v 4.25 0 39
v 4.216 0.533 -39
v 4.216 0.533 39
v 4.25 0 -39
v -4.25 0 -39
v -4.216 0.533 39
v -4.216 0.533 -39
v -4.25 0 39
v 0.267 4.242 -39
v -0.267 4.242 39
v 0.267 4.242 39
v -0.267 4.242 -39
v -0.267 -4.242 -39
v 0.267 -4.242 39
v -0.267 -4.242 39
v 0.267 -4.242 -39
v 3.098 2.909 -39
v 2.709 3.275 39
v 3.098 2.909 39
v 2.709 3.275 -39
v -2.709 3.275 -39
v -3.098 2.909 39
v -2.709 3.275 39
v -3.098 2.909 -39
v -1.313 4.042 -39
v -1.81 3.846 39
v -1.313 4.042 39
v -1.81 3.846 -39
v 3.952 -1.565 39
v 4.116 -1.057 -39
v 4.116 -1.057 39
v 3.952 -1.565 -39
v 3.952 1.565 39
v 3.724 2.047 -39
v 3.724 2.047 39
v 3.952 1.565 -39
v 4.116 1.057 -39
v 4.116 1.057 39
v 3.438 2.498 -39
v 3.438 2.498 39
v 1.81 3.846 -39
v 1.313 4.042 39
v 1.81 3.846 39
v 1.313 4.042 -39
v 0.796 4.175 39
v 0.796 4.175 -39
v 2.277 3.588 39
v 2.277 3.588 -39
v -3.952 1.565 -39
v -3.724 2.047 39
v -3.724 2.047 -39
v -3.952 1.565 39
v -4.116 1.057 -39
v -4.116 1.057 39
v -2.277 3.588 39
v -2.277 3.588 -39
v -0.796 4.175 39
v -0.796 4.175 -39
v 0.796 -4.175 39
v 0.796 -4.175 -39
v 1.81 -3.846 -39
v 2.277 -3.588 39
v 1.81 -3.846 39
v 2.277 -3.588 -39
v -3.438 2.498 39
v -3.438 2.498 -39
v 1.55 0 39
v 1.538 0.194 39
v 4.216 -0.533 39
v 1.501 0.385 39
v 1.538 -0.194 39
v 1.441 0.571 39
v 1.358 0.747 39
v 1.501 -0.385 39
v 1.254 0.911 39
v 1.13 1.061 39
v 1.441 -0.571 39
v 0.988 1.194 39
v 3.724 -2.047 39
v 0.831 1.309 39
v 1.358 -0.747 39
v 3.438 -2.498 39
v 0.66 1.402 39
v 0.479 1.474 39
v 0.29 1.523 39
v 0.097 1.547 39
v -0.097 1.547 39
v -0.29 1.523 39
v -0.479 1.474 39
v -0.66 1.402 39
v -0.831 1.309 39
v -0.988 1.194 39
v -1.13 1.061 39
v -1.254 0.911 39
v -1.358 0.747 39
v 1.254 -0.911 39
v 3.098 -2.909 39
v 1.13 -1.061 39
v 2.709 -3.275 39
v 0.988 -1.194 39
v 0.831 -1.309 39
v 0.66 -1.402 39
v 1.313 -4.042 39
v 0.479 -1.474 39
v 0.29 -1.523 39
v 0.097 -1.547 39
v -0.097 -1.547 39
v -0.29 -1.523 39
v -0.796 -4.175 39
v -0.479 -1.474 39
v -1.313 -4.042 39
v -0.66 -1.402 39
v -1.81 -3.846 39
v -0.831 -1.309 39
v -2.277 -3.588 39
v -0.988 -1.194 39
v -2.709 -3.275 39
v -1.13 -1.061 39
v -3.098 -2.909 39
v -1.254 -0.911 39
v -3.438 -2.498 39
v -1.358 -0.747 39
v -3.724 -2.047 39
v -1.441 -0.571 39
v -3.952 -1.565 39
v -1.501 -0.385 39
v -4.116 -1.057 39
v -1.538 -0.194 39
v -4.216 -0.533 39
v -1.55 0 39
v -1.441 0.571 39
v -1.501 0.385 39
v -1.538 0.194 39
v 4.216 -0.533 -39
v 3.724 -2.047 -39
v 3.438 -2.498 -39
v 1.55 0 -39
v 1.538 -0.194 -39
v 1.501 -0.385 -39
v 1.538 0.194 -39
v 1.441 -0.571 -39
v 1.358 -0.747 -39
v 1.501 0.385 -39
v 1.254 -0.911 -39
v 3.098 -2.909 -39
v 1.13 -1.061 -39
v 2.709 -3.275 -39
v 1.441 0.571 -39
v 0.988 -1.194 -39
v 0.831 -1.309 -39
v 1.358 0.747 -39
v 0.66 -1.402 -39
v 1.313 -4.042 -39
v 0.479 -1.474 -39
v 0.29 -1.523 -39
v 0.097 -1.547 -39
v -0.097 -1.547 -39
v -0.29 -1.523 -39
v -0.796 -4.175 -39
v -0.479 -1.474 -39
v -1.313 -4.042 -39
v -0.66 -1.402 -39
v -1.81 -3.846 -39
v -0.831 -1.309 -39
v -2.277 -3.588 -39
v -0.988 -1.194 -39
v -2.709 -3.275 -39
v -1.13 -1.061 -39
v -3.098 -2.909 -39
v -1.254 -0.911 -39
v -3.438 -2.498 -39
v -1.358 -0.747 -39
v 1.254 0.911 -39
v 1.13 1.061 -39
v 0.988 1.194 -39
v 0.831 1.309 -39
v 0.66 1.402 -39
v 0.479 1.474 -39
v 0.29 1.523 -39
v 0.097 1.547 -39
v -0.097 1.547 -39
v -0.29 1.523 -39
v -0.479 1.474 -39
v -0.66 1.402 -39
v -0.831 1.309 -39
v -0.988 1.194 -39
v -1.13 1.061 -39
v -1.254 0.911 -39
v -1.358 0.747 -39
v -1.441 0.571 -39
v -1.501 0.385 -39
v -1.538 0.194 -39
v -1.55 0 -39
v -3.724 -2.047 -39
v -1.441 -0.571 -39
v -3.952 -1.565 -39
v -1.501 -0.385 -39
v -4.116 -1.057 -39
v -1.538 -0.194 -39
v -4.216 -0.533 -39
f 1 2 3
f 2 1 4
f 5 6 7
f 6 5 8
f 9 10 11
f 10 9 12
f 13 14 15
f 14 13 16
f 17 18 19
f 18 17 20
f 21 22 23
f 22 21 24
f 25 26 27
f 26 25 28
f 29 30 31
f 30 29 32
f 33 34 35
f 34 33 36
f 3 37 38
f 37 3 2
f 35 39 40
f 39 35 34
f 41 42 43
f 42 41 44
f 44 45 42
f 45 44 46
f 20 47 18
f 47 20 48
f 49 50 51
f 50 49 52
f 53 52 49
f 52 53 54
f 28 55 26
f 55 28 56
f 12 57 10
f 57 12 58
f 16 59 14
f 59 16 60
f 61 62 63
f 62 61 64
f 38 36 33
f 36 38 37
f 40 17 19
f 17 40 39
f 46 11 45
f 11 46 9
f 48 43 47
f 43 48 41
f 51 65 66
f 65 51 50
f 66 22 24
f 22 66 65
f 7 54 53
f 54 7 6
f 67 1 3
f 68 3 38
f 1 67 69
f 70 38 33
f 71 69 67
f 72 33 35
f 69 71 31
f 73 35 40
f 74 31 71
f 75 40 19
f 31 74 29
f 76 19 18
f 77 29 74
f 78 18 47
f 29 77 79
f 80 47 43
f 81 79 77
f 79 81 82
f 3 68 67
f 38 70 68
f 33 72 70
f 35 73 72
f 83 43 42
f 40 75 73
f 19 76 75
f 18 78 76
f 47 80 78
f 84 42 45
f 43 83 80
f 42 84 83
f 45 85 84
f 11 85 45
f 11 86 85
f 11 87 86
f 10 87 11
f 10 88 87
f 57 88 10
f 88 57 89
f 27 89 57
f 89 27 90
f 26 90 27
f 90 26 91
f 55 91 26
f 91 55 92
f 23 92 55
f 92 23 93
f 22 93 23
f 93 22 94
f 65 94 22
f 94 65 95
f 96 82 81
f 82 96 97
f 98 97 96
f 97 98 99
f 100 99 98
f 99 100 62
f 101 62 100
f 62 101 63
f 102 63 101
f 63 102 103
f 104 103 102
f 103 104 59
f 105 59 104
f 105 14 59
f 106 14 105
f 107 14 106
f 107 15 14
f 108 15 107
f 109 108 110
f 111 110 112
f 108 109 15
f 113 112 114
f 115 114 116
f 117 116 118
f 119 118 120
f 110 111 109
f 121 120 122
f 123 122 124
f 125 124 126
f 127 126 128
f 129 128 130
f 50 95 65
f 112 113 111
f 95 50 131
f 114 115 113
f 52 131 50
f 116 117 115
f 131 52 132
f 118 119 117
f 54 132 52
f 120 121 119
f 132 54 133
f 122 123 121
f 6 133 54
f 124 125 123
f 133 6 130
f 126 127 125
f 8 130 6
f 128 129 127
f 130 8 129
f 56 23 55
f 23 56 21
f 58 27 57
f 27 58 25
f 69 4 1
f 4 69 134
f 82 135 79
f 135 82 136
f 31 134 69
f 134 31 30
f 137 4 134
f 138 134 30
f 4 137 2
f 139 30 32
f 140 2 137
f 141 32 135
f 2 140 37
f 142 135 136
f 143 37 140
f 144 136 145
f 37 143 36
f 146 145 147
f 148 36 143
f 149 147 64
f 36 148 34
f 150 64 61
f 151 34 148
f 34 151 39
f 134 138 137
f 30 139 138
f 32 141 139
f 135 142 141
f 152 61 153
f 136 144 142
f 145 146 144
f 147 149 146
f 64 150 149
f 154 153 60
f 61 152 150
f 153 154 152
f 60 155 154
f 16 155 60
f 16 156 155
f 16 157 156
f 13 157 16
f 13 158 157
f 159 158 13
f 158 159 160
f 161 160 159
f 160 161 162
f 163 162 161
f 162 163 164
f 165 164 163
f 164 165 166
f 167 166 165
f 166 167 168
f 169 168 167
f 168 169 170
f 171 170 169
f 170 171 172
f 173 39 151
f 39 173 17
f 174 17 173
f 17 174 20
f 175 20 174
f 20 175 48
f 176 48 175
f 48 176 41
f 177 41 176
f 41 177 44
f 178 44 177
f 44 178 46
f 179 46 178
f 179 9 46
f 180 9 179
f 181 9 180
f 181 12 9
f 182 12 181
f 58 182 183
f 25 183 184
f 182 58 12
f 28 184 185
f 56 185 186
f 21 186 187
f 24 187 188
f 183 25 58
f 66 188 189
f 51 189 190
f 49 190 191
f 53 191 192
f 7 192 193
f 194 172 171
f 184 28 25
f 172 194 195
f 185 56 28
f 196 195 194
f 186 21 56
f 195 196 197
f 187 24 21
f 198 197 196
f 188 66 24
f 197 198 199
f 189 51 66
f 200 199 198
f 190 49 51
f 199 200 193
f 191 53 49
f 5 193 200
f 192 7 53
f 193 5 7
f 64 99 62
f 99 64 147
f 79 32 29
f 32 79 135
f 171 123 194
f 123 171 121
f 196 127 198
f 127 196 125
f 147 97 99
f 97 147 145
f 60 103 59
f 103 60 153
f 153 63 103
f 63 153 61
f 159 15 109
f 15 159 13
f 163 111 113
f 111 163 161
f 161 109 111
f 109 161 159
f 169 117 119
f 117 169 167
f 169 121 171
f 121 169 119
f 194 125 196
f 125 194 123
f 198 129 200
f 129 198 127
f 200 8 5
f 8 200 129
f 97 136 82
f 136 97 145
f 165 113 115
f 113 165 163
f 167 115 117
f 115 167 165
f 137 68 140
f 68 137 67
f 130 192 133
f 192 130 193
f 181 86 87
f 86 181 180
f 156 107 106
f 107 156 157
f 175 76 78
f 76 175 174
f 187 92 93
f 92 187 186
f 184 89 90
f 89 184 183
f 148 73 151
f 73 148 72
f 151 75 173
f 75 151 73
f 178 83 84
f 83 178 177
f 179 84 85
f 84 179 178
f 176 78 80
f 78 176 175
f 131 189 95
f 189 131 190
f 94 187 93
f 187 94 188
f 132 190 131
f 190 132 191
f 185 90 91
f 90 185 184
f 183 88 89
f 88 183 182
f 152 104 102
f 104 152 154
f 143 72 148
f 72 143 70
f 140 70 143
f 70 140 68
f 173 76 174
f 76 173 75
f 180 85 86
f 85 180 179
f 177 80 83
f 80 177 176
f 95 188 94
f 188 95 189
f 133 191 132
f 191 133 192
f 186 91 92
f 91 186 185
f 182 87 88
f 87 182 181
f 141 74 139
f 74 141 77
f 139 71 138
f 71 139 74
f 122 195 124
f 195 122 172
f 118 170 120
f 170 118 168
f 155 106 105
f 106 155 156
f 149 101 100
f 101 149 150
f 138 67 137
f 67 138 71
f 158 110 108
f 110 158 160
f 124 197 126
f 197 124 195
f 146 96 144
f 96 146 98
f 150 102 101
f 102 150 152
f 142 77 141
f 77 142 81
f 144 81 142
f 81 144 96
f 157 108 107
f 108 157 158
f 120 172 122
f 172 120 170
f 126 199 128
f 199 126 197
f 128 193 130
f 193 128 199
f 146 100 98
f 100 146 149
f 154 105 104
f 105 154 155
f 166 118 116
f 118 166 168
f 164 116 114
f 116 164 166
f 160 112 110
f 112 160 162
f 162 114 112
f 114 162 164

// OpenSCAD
$fn = 50;


difference() {
	union() {
		translate(v = [0, 0, -39.0000000000]) {
			cylinder(h = 78, r = 4.2500000000);
		}
	}
	union() {
		translate(v = [0, 0, -100.0000000000]) {
			cylinder(h = 200, r = 1.5500000000);
		}
	}
}
